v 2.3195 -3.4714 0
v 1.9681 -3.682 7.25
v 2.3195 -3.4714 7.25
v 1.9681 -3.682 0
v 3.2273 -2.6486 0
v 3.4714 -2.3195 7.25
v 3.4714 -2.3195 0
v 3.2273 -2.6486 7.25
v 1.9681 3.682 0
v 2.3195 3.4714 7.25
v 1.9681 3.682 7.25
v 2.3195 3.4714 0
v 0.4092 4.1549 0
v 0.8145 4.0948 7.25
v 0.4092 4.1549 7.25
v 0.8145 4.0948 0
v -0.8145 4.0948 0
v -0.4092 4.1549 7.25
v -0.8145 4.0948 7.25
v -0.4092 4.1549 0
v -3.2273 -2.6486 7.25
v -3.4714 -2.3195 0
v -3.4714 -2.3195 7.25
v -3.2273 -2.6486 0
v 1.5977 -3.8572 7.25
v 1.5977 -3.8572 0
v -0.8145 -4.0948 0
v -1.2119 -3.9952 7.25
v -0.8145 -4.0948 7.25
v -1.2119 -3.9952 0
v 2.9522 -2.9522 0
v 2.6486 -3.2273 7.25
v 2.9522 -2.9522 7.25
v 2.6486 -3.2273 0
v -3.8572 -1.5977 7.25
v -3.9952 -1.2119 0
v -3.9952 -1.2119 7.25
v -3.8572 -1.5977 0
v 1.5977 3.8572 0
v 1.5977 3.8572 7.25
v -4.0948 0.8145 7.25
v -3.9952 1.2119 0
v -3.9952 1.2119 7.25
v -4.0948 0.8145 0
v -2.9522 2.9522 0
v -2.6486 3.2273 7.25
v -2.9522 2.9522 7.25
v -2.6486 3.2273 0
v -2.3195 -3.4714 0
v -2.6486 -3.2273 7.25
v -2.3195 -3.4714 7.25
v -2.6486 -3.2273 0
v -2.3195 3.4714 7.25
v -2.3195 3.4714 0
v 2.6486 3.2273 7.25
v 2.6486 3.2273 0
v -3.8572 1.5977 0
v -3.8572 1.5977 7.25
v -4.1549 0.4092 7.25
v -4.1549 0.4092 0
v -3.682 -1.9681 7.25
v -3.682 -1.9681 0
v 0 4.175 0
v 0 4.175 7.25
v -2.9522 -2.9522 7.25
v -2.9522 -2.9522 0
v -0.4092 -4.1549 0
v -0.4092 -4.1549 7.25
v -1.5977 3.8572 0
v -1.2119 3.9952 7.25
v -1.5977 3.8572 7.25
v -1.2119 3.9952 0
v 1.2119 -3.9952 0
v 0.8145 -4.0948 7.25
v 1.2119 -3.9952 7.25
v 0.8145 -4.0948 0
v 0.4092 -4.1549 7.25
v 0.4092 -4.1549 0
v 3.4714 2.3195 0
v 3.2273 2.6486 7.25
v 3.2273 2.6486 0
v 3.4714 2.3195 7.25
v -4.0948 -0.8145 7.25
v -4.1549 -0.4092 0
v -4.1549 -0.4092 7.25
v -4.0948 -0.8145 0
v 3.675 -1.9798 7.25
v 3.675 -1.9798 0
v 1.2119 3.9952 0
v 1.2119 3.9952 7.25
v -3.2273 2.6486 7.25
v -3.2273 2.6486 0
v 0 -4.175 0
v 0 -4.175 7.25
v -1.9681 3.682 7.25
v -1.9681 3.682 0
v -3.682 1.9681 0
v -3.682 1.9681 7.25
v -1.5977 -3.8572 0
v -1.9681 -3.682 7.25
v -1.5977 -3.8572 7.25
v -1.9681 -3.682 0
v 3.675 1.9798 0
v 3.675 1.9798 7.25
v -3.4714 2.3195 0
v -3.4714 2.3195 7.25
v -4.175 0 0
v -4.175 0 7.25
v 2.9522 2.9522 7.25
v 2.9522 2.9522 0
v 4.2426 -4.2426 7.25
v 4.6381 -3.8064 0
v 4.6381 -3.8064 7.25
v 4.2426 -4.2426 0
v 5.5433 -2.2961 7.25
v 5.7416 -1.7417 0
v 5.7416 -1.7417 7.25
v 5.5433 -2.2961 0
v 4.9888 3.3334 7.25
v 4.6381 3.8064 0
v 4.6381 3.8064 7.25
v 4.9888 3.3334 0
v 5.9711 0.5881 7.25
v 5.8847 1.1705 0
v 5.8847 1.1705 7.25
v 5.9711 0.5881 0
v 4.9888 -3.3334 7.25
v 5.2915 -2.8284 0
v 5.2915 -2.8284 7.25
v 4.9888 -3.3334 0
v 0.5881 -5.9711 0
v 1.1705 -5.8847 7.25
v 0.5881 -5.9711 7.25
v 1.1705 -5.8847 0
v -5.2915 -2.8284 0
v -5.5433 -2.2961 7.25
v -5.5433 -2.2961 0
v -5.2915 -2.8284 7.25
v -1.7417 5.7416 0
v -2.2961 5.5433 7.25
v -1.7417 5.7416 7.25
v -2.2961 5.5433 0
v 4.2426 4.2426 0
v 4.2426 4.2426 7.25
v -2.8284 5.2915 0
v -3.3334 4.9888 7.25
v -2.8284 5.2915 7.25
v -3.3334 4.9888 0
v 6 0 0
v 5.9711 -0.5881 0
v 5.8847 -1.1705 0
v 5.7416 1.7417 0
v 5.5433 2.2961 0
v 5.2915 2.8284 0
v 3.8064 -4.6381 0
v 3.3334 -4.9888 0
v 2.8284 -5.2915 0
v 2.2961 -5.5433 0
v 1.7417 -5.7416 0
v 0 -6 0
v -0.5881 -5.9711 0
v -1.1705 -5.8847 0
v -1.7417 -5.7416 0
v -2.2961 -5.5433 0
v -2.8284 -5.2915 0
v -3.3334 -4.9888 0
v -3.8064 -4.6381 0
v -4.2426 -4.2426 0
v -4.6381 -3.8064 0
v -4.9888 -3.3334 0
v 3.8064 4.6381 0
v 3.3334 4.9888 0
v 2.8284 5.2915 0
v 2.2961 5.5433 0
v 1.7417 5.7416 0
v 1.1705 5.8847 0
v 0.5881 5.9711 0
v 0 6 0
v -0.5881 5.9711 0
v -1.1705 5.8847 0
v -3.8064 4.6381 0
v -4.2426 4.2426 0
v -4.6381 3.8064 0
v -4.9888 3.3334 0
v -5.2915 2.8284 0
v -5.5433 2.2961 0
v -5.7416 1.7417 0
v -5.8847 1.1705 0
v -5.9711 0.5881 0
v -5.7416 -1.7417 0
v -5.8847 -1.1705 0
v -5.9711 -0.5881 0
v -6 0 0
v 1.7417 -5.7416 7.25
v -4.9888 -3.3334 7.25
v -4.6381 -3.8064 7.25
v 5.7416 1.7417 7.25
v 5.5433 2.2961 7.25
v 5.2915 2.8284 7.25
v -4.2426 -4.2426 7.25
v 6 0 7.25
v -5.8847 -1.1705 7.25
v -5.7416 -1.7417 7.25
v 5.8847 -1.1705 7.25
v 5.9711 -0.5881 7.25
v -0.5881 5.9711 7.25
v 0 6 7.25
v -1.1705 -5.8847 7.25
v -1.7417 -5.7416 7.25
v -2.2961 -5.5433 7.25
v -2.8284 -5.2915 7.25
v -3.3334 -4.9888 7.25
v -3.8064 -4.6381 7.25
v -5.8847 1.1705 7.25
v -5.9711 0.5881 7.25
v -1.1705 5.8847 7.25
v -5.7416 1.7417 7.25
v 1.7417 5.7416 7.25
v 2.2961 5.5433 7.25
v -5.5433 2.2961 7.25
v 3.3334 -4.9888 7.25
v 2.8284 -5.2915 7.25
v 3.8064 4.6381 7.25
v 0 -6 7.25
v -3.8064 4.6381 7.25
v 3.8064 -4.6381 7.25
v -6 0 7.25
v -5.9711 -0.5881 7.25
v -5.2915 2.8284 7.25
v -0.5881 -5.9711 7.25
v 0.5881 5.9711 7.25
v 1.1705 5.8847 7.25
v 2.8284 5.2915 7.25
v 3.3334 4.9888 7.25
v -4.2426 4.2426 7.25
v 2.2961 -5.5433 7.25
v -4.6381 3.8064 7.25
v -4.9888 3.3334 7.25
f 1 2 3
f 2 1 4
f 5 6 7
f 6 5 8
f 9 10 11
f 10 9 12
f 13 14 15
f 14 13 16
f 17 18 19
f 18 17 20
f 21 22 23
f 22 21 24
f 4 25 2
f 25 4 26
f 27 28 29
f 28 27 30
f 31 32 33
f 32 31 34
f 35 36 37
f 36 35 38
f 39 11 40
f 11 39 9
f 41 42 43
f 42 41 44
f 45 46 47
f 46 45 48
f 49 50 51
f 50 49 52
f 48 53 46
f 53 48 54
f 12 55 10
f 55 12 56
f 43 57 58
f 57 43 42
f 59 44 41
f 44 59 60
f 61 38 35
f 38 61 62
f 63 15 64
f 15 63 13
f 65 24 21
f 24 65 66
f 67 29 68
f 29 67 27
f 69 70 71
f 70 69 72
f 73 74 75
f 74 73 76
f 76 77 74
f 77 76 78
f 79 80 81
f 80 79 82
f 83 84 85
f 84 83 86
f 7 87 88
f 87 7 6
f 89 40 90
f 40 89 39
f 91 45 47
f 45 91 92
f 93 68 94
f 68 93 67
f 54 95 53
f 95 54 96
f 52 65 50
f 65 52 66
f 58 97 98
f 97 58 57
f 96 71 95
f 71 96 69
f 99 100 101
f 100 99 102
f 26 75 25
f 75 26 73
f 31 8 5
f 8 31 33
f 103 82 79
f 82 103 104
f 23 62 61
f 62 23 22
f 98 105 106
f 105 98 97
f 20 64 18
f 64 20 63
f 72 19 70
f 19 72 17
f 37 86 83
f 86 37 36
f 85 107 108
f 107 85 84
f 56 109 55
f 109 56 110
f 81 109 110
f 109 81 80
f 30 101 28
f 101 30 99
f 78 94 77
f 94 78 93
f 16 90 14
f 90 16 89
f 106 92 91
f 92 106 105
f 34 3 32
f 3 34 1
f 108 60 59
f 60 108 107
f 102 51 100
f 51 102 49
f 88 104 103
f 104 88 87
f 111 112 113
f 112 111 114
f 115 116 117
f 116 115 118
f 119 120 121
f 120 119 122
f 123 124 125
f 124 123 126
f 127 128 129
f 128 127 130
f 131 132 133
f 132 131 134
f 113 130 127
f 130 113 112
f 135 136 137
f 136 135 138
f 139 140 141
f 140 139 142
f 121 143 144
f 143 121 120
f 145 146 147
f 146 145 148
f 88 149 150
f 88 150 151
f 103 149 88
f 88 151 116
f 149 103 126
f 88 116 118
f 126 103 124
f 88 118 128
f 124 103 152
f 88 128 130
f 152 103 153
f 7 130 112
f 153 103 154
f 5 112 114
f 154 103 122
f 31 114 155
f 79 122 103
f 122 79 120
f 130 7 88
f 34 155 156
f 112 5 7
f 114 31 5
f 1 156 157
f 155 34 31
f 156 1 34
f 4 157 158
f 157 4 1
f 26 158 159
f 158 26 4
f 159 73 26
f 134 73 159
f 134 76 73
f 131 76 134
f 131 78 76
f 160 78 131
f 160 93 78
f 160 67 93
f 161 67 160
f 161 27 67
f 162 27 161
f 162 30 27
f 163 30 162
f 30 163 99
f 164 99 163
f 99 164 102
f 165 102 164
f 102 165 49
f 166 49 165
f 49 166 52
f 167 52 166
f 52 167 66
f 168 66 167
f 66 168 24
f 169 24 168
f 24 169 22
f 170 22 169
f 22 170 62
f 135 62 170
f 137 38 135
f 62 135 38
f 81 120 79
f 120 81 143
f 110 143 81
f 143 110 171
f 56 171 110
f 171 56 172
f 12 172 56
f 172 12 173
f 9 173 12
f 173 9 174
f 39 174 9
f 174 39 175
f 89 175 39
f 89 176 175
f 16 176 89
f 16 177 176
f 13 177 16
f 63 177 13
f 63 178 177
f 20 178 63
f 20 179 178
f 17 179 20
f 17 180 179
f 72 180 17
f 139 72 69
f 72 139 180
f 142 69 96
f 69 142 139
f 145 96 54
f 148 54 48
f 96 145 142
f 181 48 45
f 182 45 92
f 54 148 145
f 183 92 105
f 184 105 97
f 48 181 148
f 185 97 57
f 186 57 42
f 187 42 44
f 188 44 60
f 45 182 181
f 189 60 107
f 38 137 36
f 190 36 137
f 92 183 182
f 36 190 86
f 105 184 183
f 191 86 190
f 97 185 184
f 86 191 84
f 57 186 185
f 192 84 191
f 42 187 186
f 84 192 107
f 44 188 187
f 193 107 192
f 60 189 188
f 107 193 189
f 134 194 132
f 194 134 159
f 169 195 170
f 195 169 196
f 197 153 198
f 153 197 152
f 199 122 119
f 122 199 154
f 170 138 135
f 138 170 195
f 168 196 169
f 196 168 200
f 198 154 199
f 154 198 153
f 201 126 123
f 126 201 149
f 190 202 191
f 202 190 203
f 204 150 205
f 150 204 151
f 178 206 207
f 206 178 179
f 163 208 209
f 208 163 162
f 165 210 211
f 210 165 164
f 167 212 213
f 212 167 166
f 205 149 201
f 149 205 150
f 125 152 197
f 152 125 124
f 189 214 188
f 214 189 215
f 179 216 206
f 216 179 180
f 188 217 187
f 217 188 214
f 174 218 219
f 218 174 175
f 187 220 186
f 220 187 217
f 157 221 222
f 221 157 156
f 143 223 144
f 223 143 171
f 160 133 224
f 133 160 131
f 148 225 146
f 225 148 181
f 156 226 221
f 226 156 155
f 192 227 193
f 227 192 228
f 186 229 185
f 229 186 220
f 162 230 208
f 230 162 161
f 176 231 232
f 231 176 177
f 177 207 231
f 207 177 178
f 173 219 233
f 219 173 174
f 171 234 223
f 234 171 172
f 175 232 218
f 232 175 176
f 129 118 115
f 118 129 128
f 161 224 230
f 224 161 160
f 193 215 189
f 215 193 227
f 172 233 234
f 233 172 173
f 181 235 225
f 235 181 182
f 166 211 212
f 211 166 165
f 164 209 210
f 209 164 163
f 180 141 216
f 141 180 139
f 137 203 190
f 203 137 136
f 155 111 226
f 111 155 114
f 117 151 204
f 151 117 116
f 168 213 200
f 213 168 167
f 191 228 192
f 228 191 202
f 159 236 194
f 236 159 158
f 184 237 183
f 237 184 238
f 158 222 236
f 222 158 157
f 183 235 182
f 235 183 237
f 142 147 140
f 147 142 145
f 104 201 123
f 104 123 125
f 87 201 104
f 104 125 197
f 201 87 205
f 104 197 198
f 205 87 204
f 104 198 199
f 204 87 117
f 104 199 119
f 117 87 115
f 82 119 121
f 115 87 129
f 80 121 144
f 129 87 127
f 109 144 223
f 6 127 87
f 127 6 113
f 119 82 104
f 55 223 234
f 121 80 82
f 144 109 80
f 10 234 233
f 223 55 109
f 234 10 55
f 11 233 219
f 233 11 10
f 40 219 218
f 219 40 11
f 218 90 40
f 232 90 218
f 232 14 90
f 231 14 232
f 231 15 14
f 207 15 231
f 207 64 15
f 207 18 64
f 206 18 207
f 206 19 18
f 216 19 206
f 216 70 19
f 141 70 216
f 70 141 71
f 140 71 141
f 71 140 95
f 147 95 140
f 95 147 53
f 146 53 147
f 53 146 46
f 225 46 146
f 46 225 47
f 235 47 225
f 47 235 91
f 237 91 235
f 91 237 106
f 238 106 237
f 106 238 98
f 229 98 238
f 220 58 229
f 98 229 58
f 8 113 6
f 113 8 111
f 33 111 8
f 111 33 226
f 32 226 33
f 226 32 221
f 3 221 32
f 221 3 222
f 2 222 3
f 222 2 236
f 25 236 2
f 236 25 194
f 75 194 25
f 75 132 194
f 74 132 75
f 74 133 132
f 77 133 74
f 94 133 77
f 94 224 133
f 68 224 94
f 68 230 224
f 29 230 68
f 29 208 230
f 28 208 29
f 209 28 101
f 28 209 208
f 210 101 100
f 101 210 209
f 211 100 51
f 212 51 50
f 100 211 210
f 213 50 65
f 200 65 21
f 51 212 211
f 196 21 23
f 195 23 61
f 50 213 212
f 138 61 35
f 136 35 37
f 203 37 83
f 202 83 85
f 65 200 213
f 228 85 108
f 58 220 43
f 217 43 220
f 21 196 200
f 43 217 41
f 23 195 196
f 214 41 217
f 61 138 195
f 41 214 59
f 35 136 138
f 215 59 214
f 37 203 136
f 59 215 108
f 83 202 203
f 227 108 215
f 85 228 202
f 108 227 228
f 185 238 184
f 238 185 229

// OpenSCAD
// file: parameters.scad
// =============================================================================
// Gen-CF — nightly 2026-10-14 (physics_scorer, honest magpylib watts)
// Stator-only upgrade for an existing Gen-CA: the R84 arcs, hubs and Ø194 steel stay as they are; a new annular 12-bobbin stator with 4.65 mm copper (Gen-CD-style thin window) and r63–105 bobbins replaces the old r64–104 × 4.95 mm stator, together with a shorter gap sleeve and matching frame rods / bridges. Frame rods pushed to R108.5 for ≥1.0 mm web to the bays. No new magnets or steel. Scans showed no R84 stator beats Gen-CA’s own 8.492 W; this kit is the best distinct modular swap (≈8.41 W scan, ≈375 m).
// Clocking 0 deg (magnets N facing S) + D-flat keyed bore + index notch + flip-symmetric hole map.
// Windable 2-piece bobbin; turns = physics_scorer turns_fit; copper only between flanges.
// Steel back-iron: 2× Ø194 × 4.76 mm (3/16") mild-steel discs (steel_backiron_disc.dxf); magnets sit ON the steel
// (through-pockets) -> score with --back-iron. Night 2026-10-14.
// =============================================================================
topology            = "dual_rotor";

// --- Wire / winding (physics_scorer winding-fit) -------------------------------
wire_awg            = 26;
wire_od             = 0.45;     // insulated OD mm (bare 0.405)
fill_realistic      = 0.65;     // insulated-wire area / window (DENSE layered wind with a jig; scorer cap 0.65)
turns               = 347;       // = physics_scorer turns_fit (do NOT raise)
coil_former_type    = "bobbin";
coil_core_inset     = 18.26;     // radial copper build: hub = copper boundary inset by this
wind_build_axial    = 0.0;      // nothing proud of the flanges
wind_build_radial   = 0.0;

// --- Bobbin (base + lid) ---------------------------------------------------------
coil_id_r           = 63.00;    // copper boundary sector
coil_od_r           = 105.00;
span_deg            = 26.82;    // = pitch - 2*asin((wall+0.85)/coil_id_r) -> >=1.2 mm stator web
former_web          = 4.65;     // copper height between flanges (TALL copper: steel keeps Bz up)
flange_t            = 0.80;     // >= 0.8 mm FDM wall rule (tall winds push on the flanges)
wall                = 0.80;     // flange lip beyond copper
former_bare_h       = former_web + 2 * flange_t;
coil_envelope_h     = former_bare_h + 2 * wind_build_axial;
tab_w               = 7.0;
tab_len             = 7.0;
tab_h               = former_bare_h / 2;
pin_d               = 1.9;      // 1.75 mm filament locating pin
coil_mount_r        = coil_od_r + 0.2 + 4.0;
lead_y              = 1.6;
lead_slot_w         = 0.9;
lead_groove_d       = 0.6;

// --- Gap -------------------------------------------------------------------------
run_clear           = 0.50;     // rotor face -> flange
gap_spacer_h        = run_clear + wind_build_axial;
m2m                 = coil_envelope_h + 2 * run_clear;   // rotor face to rotor face (= gap_sleeve length)

// --- Stator ----------------------------------------------------------------------
coil_stations       = 12;
bay_clear           = 0.35;     // 0.35 mm: bobbin BASES print IN PLACE inside the stator bays (print-in-place gap), then pop out
stator_thick        = former_bare_h;                        // bobbins flush both faces
stator_od           = 228;
shaft_clear_stator  = 14.0;     // stator is static; gap sleeve OD 12 spins inside
stator_ir           = 57.85;    // ANNULAR stator: open centre (nested one-plate pack); inner rim 4.0 mm

// --- Rotor(s) --------------------------------------------------------------------
magnet_Br           = 1.43;     // N52
magnet_d_large      = 20.0;
magnet_h_large      = 5.0;      // one O20x5 per pocket
magnet_h_small      = 5.0;      // unused: no O5 pockets in this kit
halbach_magnetisation = "none";  // NO O5 assist magnets in this kit (scan: they lower the 4-pole score)
rotor_b_same_axis   = true;     // same-index magnets share one axis: N faces S across the gap
large_pocket_d      = 20.3;
small_pocket_d      = 5.3;
pocket_h            = 5.00;     // THROUGH the carrier: magnet back face sits on the steel disc (FLUSH seat: carrier = magnet height, magnet face level with the rotor face)
large_n             = 8;
R_large             = 84.0;
small_r_list        = [];       // no O5 pockets
carrier_od          = 194.0;
ring_ir             = 70.85;    // RING rotor: PLA magnet ring r ring_ir..carrier_od/2 (steel disc = structural rotor)
hub_flange_od       = 74.0;     // separate rotor_hub flange (inside the ring, flush with the ring face)
csk_d               = 6.6;      // M3 countersunk head pocket (ISO 10642 head 6.0 nominal) on the stator face
csk_depth           = 1.55;     // = (csk_d - m3_clear) / 2: 90 deg cone; head sits 0.3 mm below the face
n_seg               = 8;        // magnet-carrier ARCS per rotor (segmented carrier)
seg_deg             = 360 / n_seg;
seg_start           = -22.5;   // arc edge angle (between pocket 0 and its clamp bolt)
seg_kerf_deg        = 0.4;      // gap between neighbouring arcs on the steel
carrier_thick       = pocket_h;
hub_h               = 12.0;     // > steel_t + insert: radial set-screw clears the steel
hub_od              = 24.0;     // slim hub so the M4 brace rods fit at R~18 inside the coil ring
hub_insert_d        = 4.0;      // M3 heat-set insert, radial, bears on the D-flat
rotor_b_offset_deg  = 0.0;      // CLOCKING: magnets directly opposite
shaft_key           = "dflat";
dflat_depth         = 0.5;      // 8 mm shaft with 0.5 mm flat (7.5 across flat)
index_notch_d       = 3.0;

// --- Steel back-iron (buyable laser-cut) -------------------------------------------
steel_t             = 4.76;      // mild steel thickness (image method ignores it; sized from steel_flux.py so the return path stays well below saturation)
steel_center_hole   = 26.0;     // slips over the rotor hub (OD 24)
steel_od            = carrier_od;   // steel disc OD = rotor carrier OD

// --- Modular MAX interface ----------------------------------------------------------
shaft_bore          = 8.35;
dflat_x             = 4.0 - dflat_depth + (shaft_bore - 8.0) / 2;
bearing_d           = 21.85;
bearing_h           = 7.2;
m3_clear            = 3.5;
bolt_r_inner        = 30.0;     // M3 steel-disc clamp bolts (inside the magnet ring)
bolt_n_inner        = 4;
bolt_inner_angles   = [0, 90, 180, 270];
bolt_r_outer        = 84.0;     // second M3 steel-disc clamp ring
bolt_outer_angles   = [22.5, 67.5, 112.5, 157.5, 202.5, 247.5, 292.5, 337.5];
flange_bolt_r       = 108.5;     // frame rods: OUTSIDE the rotor OD (rotors spin inside them)
flange_bolt_n       = 4;
flange_bolt_offset  = 45.00;    // between coil stations -> never cuts a lead groove/tab
brace_r             = 18.0;
brace_d             = 4.3;      // temporary M4 jack rods (assembly only)
brace_n             = 4;
brace_angles        = [45, 135, 225, 315];          // flip-symmetric

spacer_pad_od       = 14.0;
spacer_pad_id       = m3_clear;
endbell_od          = 227.0;
endbell_thick       = 8.0;
endbell_shaft_clear = 10.0;
collar_h            = 10.0;
standoff_od         = 9.0;
frame_standoff_h    = run_clear + carrier_thick + hub_h + collar_h + 2.0;
sleeve_od           = 12.0;
plate_max_mm        = 410;

$fn = 64;
// main file
// Gen-CF — gap sleeve: rigid spacer on the shaft BETWEEN the two rotor carriers (passes through the stator
// hole). Length = m2m, so it sets the magnet gap and carries the full magnet pull. Print x1, upright.
include <parameters.scad>;
$fn = 64;
// D-flat keyed bore: flat faces +X (angle 0 = magnet pocket 0 = index notch)
module dflat_bore(h) {
    intersection() {
        cylinder(d=shaft_bore, h=h);
        translate([-shaft_bore, -shaft_bore, 0]) cube([shaft_bore + dflat_x, 2*shaft_bore, h]);
    }
}

difference() {
    cylinder(d=sleeve_od, h=m2m);
    translate([0, 0, -0.1]) dflat_bore(m2m + 0.2);
}
